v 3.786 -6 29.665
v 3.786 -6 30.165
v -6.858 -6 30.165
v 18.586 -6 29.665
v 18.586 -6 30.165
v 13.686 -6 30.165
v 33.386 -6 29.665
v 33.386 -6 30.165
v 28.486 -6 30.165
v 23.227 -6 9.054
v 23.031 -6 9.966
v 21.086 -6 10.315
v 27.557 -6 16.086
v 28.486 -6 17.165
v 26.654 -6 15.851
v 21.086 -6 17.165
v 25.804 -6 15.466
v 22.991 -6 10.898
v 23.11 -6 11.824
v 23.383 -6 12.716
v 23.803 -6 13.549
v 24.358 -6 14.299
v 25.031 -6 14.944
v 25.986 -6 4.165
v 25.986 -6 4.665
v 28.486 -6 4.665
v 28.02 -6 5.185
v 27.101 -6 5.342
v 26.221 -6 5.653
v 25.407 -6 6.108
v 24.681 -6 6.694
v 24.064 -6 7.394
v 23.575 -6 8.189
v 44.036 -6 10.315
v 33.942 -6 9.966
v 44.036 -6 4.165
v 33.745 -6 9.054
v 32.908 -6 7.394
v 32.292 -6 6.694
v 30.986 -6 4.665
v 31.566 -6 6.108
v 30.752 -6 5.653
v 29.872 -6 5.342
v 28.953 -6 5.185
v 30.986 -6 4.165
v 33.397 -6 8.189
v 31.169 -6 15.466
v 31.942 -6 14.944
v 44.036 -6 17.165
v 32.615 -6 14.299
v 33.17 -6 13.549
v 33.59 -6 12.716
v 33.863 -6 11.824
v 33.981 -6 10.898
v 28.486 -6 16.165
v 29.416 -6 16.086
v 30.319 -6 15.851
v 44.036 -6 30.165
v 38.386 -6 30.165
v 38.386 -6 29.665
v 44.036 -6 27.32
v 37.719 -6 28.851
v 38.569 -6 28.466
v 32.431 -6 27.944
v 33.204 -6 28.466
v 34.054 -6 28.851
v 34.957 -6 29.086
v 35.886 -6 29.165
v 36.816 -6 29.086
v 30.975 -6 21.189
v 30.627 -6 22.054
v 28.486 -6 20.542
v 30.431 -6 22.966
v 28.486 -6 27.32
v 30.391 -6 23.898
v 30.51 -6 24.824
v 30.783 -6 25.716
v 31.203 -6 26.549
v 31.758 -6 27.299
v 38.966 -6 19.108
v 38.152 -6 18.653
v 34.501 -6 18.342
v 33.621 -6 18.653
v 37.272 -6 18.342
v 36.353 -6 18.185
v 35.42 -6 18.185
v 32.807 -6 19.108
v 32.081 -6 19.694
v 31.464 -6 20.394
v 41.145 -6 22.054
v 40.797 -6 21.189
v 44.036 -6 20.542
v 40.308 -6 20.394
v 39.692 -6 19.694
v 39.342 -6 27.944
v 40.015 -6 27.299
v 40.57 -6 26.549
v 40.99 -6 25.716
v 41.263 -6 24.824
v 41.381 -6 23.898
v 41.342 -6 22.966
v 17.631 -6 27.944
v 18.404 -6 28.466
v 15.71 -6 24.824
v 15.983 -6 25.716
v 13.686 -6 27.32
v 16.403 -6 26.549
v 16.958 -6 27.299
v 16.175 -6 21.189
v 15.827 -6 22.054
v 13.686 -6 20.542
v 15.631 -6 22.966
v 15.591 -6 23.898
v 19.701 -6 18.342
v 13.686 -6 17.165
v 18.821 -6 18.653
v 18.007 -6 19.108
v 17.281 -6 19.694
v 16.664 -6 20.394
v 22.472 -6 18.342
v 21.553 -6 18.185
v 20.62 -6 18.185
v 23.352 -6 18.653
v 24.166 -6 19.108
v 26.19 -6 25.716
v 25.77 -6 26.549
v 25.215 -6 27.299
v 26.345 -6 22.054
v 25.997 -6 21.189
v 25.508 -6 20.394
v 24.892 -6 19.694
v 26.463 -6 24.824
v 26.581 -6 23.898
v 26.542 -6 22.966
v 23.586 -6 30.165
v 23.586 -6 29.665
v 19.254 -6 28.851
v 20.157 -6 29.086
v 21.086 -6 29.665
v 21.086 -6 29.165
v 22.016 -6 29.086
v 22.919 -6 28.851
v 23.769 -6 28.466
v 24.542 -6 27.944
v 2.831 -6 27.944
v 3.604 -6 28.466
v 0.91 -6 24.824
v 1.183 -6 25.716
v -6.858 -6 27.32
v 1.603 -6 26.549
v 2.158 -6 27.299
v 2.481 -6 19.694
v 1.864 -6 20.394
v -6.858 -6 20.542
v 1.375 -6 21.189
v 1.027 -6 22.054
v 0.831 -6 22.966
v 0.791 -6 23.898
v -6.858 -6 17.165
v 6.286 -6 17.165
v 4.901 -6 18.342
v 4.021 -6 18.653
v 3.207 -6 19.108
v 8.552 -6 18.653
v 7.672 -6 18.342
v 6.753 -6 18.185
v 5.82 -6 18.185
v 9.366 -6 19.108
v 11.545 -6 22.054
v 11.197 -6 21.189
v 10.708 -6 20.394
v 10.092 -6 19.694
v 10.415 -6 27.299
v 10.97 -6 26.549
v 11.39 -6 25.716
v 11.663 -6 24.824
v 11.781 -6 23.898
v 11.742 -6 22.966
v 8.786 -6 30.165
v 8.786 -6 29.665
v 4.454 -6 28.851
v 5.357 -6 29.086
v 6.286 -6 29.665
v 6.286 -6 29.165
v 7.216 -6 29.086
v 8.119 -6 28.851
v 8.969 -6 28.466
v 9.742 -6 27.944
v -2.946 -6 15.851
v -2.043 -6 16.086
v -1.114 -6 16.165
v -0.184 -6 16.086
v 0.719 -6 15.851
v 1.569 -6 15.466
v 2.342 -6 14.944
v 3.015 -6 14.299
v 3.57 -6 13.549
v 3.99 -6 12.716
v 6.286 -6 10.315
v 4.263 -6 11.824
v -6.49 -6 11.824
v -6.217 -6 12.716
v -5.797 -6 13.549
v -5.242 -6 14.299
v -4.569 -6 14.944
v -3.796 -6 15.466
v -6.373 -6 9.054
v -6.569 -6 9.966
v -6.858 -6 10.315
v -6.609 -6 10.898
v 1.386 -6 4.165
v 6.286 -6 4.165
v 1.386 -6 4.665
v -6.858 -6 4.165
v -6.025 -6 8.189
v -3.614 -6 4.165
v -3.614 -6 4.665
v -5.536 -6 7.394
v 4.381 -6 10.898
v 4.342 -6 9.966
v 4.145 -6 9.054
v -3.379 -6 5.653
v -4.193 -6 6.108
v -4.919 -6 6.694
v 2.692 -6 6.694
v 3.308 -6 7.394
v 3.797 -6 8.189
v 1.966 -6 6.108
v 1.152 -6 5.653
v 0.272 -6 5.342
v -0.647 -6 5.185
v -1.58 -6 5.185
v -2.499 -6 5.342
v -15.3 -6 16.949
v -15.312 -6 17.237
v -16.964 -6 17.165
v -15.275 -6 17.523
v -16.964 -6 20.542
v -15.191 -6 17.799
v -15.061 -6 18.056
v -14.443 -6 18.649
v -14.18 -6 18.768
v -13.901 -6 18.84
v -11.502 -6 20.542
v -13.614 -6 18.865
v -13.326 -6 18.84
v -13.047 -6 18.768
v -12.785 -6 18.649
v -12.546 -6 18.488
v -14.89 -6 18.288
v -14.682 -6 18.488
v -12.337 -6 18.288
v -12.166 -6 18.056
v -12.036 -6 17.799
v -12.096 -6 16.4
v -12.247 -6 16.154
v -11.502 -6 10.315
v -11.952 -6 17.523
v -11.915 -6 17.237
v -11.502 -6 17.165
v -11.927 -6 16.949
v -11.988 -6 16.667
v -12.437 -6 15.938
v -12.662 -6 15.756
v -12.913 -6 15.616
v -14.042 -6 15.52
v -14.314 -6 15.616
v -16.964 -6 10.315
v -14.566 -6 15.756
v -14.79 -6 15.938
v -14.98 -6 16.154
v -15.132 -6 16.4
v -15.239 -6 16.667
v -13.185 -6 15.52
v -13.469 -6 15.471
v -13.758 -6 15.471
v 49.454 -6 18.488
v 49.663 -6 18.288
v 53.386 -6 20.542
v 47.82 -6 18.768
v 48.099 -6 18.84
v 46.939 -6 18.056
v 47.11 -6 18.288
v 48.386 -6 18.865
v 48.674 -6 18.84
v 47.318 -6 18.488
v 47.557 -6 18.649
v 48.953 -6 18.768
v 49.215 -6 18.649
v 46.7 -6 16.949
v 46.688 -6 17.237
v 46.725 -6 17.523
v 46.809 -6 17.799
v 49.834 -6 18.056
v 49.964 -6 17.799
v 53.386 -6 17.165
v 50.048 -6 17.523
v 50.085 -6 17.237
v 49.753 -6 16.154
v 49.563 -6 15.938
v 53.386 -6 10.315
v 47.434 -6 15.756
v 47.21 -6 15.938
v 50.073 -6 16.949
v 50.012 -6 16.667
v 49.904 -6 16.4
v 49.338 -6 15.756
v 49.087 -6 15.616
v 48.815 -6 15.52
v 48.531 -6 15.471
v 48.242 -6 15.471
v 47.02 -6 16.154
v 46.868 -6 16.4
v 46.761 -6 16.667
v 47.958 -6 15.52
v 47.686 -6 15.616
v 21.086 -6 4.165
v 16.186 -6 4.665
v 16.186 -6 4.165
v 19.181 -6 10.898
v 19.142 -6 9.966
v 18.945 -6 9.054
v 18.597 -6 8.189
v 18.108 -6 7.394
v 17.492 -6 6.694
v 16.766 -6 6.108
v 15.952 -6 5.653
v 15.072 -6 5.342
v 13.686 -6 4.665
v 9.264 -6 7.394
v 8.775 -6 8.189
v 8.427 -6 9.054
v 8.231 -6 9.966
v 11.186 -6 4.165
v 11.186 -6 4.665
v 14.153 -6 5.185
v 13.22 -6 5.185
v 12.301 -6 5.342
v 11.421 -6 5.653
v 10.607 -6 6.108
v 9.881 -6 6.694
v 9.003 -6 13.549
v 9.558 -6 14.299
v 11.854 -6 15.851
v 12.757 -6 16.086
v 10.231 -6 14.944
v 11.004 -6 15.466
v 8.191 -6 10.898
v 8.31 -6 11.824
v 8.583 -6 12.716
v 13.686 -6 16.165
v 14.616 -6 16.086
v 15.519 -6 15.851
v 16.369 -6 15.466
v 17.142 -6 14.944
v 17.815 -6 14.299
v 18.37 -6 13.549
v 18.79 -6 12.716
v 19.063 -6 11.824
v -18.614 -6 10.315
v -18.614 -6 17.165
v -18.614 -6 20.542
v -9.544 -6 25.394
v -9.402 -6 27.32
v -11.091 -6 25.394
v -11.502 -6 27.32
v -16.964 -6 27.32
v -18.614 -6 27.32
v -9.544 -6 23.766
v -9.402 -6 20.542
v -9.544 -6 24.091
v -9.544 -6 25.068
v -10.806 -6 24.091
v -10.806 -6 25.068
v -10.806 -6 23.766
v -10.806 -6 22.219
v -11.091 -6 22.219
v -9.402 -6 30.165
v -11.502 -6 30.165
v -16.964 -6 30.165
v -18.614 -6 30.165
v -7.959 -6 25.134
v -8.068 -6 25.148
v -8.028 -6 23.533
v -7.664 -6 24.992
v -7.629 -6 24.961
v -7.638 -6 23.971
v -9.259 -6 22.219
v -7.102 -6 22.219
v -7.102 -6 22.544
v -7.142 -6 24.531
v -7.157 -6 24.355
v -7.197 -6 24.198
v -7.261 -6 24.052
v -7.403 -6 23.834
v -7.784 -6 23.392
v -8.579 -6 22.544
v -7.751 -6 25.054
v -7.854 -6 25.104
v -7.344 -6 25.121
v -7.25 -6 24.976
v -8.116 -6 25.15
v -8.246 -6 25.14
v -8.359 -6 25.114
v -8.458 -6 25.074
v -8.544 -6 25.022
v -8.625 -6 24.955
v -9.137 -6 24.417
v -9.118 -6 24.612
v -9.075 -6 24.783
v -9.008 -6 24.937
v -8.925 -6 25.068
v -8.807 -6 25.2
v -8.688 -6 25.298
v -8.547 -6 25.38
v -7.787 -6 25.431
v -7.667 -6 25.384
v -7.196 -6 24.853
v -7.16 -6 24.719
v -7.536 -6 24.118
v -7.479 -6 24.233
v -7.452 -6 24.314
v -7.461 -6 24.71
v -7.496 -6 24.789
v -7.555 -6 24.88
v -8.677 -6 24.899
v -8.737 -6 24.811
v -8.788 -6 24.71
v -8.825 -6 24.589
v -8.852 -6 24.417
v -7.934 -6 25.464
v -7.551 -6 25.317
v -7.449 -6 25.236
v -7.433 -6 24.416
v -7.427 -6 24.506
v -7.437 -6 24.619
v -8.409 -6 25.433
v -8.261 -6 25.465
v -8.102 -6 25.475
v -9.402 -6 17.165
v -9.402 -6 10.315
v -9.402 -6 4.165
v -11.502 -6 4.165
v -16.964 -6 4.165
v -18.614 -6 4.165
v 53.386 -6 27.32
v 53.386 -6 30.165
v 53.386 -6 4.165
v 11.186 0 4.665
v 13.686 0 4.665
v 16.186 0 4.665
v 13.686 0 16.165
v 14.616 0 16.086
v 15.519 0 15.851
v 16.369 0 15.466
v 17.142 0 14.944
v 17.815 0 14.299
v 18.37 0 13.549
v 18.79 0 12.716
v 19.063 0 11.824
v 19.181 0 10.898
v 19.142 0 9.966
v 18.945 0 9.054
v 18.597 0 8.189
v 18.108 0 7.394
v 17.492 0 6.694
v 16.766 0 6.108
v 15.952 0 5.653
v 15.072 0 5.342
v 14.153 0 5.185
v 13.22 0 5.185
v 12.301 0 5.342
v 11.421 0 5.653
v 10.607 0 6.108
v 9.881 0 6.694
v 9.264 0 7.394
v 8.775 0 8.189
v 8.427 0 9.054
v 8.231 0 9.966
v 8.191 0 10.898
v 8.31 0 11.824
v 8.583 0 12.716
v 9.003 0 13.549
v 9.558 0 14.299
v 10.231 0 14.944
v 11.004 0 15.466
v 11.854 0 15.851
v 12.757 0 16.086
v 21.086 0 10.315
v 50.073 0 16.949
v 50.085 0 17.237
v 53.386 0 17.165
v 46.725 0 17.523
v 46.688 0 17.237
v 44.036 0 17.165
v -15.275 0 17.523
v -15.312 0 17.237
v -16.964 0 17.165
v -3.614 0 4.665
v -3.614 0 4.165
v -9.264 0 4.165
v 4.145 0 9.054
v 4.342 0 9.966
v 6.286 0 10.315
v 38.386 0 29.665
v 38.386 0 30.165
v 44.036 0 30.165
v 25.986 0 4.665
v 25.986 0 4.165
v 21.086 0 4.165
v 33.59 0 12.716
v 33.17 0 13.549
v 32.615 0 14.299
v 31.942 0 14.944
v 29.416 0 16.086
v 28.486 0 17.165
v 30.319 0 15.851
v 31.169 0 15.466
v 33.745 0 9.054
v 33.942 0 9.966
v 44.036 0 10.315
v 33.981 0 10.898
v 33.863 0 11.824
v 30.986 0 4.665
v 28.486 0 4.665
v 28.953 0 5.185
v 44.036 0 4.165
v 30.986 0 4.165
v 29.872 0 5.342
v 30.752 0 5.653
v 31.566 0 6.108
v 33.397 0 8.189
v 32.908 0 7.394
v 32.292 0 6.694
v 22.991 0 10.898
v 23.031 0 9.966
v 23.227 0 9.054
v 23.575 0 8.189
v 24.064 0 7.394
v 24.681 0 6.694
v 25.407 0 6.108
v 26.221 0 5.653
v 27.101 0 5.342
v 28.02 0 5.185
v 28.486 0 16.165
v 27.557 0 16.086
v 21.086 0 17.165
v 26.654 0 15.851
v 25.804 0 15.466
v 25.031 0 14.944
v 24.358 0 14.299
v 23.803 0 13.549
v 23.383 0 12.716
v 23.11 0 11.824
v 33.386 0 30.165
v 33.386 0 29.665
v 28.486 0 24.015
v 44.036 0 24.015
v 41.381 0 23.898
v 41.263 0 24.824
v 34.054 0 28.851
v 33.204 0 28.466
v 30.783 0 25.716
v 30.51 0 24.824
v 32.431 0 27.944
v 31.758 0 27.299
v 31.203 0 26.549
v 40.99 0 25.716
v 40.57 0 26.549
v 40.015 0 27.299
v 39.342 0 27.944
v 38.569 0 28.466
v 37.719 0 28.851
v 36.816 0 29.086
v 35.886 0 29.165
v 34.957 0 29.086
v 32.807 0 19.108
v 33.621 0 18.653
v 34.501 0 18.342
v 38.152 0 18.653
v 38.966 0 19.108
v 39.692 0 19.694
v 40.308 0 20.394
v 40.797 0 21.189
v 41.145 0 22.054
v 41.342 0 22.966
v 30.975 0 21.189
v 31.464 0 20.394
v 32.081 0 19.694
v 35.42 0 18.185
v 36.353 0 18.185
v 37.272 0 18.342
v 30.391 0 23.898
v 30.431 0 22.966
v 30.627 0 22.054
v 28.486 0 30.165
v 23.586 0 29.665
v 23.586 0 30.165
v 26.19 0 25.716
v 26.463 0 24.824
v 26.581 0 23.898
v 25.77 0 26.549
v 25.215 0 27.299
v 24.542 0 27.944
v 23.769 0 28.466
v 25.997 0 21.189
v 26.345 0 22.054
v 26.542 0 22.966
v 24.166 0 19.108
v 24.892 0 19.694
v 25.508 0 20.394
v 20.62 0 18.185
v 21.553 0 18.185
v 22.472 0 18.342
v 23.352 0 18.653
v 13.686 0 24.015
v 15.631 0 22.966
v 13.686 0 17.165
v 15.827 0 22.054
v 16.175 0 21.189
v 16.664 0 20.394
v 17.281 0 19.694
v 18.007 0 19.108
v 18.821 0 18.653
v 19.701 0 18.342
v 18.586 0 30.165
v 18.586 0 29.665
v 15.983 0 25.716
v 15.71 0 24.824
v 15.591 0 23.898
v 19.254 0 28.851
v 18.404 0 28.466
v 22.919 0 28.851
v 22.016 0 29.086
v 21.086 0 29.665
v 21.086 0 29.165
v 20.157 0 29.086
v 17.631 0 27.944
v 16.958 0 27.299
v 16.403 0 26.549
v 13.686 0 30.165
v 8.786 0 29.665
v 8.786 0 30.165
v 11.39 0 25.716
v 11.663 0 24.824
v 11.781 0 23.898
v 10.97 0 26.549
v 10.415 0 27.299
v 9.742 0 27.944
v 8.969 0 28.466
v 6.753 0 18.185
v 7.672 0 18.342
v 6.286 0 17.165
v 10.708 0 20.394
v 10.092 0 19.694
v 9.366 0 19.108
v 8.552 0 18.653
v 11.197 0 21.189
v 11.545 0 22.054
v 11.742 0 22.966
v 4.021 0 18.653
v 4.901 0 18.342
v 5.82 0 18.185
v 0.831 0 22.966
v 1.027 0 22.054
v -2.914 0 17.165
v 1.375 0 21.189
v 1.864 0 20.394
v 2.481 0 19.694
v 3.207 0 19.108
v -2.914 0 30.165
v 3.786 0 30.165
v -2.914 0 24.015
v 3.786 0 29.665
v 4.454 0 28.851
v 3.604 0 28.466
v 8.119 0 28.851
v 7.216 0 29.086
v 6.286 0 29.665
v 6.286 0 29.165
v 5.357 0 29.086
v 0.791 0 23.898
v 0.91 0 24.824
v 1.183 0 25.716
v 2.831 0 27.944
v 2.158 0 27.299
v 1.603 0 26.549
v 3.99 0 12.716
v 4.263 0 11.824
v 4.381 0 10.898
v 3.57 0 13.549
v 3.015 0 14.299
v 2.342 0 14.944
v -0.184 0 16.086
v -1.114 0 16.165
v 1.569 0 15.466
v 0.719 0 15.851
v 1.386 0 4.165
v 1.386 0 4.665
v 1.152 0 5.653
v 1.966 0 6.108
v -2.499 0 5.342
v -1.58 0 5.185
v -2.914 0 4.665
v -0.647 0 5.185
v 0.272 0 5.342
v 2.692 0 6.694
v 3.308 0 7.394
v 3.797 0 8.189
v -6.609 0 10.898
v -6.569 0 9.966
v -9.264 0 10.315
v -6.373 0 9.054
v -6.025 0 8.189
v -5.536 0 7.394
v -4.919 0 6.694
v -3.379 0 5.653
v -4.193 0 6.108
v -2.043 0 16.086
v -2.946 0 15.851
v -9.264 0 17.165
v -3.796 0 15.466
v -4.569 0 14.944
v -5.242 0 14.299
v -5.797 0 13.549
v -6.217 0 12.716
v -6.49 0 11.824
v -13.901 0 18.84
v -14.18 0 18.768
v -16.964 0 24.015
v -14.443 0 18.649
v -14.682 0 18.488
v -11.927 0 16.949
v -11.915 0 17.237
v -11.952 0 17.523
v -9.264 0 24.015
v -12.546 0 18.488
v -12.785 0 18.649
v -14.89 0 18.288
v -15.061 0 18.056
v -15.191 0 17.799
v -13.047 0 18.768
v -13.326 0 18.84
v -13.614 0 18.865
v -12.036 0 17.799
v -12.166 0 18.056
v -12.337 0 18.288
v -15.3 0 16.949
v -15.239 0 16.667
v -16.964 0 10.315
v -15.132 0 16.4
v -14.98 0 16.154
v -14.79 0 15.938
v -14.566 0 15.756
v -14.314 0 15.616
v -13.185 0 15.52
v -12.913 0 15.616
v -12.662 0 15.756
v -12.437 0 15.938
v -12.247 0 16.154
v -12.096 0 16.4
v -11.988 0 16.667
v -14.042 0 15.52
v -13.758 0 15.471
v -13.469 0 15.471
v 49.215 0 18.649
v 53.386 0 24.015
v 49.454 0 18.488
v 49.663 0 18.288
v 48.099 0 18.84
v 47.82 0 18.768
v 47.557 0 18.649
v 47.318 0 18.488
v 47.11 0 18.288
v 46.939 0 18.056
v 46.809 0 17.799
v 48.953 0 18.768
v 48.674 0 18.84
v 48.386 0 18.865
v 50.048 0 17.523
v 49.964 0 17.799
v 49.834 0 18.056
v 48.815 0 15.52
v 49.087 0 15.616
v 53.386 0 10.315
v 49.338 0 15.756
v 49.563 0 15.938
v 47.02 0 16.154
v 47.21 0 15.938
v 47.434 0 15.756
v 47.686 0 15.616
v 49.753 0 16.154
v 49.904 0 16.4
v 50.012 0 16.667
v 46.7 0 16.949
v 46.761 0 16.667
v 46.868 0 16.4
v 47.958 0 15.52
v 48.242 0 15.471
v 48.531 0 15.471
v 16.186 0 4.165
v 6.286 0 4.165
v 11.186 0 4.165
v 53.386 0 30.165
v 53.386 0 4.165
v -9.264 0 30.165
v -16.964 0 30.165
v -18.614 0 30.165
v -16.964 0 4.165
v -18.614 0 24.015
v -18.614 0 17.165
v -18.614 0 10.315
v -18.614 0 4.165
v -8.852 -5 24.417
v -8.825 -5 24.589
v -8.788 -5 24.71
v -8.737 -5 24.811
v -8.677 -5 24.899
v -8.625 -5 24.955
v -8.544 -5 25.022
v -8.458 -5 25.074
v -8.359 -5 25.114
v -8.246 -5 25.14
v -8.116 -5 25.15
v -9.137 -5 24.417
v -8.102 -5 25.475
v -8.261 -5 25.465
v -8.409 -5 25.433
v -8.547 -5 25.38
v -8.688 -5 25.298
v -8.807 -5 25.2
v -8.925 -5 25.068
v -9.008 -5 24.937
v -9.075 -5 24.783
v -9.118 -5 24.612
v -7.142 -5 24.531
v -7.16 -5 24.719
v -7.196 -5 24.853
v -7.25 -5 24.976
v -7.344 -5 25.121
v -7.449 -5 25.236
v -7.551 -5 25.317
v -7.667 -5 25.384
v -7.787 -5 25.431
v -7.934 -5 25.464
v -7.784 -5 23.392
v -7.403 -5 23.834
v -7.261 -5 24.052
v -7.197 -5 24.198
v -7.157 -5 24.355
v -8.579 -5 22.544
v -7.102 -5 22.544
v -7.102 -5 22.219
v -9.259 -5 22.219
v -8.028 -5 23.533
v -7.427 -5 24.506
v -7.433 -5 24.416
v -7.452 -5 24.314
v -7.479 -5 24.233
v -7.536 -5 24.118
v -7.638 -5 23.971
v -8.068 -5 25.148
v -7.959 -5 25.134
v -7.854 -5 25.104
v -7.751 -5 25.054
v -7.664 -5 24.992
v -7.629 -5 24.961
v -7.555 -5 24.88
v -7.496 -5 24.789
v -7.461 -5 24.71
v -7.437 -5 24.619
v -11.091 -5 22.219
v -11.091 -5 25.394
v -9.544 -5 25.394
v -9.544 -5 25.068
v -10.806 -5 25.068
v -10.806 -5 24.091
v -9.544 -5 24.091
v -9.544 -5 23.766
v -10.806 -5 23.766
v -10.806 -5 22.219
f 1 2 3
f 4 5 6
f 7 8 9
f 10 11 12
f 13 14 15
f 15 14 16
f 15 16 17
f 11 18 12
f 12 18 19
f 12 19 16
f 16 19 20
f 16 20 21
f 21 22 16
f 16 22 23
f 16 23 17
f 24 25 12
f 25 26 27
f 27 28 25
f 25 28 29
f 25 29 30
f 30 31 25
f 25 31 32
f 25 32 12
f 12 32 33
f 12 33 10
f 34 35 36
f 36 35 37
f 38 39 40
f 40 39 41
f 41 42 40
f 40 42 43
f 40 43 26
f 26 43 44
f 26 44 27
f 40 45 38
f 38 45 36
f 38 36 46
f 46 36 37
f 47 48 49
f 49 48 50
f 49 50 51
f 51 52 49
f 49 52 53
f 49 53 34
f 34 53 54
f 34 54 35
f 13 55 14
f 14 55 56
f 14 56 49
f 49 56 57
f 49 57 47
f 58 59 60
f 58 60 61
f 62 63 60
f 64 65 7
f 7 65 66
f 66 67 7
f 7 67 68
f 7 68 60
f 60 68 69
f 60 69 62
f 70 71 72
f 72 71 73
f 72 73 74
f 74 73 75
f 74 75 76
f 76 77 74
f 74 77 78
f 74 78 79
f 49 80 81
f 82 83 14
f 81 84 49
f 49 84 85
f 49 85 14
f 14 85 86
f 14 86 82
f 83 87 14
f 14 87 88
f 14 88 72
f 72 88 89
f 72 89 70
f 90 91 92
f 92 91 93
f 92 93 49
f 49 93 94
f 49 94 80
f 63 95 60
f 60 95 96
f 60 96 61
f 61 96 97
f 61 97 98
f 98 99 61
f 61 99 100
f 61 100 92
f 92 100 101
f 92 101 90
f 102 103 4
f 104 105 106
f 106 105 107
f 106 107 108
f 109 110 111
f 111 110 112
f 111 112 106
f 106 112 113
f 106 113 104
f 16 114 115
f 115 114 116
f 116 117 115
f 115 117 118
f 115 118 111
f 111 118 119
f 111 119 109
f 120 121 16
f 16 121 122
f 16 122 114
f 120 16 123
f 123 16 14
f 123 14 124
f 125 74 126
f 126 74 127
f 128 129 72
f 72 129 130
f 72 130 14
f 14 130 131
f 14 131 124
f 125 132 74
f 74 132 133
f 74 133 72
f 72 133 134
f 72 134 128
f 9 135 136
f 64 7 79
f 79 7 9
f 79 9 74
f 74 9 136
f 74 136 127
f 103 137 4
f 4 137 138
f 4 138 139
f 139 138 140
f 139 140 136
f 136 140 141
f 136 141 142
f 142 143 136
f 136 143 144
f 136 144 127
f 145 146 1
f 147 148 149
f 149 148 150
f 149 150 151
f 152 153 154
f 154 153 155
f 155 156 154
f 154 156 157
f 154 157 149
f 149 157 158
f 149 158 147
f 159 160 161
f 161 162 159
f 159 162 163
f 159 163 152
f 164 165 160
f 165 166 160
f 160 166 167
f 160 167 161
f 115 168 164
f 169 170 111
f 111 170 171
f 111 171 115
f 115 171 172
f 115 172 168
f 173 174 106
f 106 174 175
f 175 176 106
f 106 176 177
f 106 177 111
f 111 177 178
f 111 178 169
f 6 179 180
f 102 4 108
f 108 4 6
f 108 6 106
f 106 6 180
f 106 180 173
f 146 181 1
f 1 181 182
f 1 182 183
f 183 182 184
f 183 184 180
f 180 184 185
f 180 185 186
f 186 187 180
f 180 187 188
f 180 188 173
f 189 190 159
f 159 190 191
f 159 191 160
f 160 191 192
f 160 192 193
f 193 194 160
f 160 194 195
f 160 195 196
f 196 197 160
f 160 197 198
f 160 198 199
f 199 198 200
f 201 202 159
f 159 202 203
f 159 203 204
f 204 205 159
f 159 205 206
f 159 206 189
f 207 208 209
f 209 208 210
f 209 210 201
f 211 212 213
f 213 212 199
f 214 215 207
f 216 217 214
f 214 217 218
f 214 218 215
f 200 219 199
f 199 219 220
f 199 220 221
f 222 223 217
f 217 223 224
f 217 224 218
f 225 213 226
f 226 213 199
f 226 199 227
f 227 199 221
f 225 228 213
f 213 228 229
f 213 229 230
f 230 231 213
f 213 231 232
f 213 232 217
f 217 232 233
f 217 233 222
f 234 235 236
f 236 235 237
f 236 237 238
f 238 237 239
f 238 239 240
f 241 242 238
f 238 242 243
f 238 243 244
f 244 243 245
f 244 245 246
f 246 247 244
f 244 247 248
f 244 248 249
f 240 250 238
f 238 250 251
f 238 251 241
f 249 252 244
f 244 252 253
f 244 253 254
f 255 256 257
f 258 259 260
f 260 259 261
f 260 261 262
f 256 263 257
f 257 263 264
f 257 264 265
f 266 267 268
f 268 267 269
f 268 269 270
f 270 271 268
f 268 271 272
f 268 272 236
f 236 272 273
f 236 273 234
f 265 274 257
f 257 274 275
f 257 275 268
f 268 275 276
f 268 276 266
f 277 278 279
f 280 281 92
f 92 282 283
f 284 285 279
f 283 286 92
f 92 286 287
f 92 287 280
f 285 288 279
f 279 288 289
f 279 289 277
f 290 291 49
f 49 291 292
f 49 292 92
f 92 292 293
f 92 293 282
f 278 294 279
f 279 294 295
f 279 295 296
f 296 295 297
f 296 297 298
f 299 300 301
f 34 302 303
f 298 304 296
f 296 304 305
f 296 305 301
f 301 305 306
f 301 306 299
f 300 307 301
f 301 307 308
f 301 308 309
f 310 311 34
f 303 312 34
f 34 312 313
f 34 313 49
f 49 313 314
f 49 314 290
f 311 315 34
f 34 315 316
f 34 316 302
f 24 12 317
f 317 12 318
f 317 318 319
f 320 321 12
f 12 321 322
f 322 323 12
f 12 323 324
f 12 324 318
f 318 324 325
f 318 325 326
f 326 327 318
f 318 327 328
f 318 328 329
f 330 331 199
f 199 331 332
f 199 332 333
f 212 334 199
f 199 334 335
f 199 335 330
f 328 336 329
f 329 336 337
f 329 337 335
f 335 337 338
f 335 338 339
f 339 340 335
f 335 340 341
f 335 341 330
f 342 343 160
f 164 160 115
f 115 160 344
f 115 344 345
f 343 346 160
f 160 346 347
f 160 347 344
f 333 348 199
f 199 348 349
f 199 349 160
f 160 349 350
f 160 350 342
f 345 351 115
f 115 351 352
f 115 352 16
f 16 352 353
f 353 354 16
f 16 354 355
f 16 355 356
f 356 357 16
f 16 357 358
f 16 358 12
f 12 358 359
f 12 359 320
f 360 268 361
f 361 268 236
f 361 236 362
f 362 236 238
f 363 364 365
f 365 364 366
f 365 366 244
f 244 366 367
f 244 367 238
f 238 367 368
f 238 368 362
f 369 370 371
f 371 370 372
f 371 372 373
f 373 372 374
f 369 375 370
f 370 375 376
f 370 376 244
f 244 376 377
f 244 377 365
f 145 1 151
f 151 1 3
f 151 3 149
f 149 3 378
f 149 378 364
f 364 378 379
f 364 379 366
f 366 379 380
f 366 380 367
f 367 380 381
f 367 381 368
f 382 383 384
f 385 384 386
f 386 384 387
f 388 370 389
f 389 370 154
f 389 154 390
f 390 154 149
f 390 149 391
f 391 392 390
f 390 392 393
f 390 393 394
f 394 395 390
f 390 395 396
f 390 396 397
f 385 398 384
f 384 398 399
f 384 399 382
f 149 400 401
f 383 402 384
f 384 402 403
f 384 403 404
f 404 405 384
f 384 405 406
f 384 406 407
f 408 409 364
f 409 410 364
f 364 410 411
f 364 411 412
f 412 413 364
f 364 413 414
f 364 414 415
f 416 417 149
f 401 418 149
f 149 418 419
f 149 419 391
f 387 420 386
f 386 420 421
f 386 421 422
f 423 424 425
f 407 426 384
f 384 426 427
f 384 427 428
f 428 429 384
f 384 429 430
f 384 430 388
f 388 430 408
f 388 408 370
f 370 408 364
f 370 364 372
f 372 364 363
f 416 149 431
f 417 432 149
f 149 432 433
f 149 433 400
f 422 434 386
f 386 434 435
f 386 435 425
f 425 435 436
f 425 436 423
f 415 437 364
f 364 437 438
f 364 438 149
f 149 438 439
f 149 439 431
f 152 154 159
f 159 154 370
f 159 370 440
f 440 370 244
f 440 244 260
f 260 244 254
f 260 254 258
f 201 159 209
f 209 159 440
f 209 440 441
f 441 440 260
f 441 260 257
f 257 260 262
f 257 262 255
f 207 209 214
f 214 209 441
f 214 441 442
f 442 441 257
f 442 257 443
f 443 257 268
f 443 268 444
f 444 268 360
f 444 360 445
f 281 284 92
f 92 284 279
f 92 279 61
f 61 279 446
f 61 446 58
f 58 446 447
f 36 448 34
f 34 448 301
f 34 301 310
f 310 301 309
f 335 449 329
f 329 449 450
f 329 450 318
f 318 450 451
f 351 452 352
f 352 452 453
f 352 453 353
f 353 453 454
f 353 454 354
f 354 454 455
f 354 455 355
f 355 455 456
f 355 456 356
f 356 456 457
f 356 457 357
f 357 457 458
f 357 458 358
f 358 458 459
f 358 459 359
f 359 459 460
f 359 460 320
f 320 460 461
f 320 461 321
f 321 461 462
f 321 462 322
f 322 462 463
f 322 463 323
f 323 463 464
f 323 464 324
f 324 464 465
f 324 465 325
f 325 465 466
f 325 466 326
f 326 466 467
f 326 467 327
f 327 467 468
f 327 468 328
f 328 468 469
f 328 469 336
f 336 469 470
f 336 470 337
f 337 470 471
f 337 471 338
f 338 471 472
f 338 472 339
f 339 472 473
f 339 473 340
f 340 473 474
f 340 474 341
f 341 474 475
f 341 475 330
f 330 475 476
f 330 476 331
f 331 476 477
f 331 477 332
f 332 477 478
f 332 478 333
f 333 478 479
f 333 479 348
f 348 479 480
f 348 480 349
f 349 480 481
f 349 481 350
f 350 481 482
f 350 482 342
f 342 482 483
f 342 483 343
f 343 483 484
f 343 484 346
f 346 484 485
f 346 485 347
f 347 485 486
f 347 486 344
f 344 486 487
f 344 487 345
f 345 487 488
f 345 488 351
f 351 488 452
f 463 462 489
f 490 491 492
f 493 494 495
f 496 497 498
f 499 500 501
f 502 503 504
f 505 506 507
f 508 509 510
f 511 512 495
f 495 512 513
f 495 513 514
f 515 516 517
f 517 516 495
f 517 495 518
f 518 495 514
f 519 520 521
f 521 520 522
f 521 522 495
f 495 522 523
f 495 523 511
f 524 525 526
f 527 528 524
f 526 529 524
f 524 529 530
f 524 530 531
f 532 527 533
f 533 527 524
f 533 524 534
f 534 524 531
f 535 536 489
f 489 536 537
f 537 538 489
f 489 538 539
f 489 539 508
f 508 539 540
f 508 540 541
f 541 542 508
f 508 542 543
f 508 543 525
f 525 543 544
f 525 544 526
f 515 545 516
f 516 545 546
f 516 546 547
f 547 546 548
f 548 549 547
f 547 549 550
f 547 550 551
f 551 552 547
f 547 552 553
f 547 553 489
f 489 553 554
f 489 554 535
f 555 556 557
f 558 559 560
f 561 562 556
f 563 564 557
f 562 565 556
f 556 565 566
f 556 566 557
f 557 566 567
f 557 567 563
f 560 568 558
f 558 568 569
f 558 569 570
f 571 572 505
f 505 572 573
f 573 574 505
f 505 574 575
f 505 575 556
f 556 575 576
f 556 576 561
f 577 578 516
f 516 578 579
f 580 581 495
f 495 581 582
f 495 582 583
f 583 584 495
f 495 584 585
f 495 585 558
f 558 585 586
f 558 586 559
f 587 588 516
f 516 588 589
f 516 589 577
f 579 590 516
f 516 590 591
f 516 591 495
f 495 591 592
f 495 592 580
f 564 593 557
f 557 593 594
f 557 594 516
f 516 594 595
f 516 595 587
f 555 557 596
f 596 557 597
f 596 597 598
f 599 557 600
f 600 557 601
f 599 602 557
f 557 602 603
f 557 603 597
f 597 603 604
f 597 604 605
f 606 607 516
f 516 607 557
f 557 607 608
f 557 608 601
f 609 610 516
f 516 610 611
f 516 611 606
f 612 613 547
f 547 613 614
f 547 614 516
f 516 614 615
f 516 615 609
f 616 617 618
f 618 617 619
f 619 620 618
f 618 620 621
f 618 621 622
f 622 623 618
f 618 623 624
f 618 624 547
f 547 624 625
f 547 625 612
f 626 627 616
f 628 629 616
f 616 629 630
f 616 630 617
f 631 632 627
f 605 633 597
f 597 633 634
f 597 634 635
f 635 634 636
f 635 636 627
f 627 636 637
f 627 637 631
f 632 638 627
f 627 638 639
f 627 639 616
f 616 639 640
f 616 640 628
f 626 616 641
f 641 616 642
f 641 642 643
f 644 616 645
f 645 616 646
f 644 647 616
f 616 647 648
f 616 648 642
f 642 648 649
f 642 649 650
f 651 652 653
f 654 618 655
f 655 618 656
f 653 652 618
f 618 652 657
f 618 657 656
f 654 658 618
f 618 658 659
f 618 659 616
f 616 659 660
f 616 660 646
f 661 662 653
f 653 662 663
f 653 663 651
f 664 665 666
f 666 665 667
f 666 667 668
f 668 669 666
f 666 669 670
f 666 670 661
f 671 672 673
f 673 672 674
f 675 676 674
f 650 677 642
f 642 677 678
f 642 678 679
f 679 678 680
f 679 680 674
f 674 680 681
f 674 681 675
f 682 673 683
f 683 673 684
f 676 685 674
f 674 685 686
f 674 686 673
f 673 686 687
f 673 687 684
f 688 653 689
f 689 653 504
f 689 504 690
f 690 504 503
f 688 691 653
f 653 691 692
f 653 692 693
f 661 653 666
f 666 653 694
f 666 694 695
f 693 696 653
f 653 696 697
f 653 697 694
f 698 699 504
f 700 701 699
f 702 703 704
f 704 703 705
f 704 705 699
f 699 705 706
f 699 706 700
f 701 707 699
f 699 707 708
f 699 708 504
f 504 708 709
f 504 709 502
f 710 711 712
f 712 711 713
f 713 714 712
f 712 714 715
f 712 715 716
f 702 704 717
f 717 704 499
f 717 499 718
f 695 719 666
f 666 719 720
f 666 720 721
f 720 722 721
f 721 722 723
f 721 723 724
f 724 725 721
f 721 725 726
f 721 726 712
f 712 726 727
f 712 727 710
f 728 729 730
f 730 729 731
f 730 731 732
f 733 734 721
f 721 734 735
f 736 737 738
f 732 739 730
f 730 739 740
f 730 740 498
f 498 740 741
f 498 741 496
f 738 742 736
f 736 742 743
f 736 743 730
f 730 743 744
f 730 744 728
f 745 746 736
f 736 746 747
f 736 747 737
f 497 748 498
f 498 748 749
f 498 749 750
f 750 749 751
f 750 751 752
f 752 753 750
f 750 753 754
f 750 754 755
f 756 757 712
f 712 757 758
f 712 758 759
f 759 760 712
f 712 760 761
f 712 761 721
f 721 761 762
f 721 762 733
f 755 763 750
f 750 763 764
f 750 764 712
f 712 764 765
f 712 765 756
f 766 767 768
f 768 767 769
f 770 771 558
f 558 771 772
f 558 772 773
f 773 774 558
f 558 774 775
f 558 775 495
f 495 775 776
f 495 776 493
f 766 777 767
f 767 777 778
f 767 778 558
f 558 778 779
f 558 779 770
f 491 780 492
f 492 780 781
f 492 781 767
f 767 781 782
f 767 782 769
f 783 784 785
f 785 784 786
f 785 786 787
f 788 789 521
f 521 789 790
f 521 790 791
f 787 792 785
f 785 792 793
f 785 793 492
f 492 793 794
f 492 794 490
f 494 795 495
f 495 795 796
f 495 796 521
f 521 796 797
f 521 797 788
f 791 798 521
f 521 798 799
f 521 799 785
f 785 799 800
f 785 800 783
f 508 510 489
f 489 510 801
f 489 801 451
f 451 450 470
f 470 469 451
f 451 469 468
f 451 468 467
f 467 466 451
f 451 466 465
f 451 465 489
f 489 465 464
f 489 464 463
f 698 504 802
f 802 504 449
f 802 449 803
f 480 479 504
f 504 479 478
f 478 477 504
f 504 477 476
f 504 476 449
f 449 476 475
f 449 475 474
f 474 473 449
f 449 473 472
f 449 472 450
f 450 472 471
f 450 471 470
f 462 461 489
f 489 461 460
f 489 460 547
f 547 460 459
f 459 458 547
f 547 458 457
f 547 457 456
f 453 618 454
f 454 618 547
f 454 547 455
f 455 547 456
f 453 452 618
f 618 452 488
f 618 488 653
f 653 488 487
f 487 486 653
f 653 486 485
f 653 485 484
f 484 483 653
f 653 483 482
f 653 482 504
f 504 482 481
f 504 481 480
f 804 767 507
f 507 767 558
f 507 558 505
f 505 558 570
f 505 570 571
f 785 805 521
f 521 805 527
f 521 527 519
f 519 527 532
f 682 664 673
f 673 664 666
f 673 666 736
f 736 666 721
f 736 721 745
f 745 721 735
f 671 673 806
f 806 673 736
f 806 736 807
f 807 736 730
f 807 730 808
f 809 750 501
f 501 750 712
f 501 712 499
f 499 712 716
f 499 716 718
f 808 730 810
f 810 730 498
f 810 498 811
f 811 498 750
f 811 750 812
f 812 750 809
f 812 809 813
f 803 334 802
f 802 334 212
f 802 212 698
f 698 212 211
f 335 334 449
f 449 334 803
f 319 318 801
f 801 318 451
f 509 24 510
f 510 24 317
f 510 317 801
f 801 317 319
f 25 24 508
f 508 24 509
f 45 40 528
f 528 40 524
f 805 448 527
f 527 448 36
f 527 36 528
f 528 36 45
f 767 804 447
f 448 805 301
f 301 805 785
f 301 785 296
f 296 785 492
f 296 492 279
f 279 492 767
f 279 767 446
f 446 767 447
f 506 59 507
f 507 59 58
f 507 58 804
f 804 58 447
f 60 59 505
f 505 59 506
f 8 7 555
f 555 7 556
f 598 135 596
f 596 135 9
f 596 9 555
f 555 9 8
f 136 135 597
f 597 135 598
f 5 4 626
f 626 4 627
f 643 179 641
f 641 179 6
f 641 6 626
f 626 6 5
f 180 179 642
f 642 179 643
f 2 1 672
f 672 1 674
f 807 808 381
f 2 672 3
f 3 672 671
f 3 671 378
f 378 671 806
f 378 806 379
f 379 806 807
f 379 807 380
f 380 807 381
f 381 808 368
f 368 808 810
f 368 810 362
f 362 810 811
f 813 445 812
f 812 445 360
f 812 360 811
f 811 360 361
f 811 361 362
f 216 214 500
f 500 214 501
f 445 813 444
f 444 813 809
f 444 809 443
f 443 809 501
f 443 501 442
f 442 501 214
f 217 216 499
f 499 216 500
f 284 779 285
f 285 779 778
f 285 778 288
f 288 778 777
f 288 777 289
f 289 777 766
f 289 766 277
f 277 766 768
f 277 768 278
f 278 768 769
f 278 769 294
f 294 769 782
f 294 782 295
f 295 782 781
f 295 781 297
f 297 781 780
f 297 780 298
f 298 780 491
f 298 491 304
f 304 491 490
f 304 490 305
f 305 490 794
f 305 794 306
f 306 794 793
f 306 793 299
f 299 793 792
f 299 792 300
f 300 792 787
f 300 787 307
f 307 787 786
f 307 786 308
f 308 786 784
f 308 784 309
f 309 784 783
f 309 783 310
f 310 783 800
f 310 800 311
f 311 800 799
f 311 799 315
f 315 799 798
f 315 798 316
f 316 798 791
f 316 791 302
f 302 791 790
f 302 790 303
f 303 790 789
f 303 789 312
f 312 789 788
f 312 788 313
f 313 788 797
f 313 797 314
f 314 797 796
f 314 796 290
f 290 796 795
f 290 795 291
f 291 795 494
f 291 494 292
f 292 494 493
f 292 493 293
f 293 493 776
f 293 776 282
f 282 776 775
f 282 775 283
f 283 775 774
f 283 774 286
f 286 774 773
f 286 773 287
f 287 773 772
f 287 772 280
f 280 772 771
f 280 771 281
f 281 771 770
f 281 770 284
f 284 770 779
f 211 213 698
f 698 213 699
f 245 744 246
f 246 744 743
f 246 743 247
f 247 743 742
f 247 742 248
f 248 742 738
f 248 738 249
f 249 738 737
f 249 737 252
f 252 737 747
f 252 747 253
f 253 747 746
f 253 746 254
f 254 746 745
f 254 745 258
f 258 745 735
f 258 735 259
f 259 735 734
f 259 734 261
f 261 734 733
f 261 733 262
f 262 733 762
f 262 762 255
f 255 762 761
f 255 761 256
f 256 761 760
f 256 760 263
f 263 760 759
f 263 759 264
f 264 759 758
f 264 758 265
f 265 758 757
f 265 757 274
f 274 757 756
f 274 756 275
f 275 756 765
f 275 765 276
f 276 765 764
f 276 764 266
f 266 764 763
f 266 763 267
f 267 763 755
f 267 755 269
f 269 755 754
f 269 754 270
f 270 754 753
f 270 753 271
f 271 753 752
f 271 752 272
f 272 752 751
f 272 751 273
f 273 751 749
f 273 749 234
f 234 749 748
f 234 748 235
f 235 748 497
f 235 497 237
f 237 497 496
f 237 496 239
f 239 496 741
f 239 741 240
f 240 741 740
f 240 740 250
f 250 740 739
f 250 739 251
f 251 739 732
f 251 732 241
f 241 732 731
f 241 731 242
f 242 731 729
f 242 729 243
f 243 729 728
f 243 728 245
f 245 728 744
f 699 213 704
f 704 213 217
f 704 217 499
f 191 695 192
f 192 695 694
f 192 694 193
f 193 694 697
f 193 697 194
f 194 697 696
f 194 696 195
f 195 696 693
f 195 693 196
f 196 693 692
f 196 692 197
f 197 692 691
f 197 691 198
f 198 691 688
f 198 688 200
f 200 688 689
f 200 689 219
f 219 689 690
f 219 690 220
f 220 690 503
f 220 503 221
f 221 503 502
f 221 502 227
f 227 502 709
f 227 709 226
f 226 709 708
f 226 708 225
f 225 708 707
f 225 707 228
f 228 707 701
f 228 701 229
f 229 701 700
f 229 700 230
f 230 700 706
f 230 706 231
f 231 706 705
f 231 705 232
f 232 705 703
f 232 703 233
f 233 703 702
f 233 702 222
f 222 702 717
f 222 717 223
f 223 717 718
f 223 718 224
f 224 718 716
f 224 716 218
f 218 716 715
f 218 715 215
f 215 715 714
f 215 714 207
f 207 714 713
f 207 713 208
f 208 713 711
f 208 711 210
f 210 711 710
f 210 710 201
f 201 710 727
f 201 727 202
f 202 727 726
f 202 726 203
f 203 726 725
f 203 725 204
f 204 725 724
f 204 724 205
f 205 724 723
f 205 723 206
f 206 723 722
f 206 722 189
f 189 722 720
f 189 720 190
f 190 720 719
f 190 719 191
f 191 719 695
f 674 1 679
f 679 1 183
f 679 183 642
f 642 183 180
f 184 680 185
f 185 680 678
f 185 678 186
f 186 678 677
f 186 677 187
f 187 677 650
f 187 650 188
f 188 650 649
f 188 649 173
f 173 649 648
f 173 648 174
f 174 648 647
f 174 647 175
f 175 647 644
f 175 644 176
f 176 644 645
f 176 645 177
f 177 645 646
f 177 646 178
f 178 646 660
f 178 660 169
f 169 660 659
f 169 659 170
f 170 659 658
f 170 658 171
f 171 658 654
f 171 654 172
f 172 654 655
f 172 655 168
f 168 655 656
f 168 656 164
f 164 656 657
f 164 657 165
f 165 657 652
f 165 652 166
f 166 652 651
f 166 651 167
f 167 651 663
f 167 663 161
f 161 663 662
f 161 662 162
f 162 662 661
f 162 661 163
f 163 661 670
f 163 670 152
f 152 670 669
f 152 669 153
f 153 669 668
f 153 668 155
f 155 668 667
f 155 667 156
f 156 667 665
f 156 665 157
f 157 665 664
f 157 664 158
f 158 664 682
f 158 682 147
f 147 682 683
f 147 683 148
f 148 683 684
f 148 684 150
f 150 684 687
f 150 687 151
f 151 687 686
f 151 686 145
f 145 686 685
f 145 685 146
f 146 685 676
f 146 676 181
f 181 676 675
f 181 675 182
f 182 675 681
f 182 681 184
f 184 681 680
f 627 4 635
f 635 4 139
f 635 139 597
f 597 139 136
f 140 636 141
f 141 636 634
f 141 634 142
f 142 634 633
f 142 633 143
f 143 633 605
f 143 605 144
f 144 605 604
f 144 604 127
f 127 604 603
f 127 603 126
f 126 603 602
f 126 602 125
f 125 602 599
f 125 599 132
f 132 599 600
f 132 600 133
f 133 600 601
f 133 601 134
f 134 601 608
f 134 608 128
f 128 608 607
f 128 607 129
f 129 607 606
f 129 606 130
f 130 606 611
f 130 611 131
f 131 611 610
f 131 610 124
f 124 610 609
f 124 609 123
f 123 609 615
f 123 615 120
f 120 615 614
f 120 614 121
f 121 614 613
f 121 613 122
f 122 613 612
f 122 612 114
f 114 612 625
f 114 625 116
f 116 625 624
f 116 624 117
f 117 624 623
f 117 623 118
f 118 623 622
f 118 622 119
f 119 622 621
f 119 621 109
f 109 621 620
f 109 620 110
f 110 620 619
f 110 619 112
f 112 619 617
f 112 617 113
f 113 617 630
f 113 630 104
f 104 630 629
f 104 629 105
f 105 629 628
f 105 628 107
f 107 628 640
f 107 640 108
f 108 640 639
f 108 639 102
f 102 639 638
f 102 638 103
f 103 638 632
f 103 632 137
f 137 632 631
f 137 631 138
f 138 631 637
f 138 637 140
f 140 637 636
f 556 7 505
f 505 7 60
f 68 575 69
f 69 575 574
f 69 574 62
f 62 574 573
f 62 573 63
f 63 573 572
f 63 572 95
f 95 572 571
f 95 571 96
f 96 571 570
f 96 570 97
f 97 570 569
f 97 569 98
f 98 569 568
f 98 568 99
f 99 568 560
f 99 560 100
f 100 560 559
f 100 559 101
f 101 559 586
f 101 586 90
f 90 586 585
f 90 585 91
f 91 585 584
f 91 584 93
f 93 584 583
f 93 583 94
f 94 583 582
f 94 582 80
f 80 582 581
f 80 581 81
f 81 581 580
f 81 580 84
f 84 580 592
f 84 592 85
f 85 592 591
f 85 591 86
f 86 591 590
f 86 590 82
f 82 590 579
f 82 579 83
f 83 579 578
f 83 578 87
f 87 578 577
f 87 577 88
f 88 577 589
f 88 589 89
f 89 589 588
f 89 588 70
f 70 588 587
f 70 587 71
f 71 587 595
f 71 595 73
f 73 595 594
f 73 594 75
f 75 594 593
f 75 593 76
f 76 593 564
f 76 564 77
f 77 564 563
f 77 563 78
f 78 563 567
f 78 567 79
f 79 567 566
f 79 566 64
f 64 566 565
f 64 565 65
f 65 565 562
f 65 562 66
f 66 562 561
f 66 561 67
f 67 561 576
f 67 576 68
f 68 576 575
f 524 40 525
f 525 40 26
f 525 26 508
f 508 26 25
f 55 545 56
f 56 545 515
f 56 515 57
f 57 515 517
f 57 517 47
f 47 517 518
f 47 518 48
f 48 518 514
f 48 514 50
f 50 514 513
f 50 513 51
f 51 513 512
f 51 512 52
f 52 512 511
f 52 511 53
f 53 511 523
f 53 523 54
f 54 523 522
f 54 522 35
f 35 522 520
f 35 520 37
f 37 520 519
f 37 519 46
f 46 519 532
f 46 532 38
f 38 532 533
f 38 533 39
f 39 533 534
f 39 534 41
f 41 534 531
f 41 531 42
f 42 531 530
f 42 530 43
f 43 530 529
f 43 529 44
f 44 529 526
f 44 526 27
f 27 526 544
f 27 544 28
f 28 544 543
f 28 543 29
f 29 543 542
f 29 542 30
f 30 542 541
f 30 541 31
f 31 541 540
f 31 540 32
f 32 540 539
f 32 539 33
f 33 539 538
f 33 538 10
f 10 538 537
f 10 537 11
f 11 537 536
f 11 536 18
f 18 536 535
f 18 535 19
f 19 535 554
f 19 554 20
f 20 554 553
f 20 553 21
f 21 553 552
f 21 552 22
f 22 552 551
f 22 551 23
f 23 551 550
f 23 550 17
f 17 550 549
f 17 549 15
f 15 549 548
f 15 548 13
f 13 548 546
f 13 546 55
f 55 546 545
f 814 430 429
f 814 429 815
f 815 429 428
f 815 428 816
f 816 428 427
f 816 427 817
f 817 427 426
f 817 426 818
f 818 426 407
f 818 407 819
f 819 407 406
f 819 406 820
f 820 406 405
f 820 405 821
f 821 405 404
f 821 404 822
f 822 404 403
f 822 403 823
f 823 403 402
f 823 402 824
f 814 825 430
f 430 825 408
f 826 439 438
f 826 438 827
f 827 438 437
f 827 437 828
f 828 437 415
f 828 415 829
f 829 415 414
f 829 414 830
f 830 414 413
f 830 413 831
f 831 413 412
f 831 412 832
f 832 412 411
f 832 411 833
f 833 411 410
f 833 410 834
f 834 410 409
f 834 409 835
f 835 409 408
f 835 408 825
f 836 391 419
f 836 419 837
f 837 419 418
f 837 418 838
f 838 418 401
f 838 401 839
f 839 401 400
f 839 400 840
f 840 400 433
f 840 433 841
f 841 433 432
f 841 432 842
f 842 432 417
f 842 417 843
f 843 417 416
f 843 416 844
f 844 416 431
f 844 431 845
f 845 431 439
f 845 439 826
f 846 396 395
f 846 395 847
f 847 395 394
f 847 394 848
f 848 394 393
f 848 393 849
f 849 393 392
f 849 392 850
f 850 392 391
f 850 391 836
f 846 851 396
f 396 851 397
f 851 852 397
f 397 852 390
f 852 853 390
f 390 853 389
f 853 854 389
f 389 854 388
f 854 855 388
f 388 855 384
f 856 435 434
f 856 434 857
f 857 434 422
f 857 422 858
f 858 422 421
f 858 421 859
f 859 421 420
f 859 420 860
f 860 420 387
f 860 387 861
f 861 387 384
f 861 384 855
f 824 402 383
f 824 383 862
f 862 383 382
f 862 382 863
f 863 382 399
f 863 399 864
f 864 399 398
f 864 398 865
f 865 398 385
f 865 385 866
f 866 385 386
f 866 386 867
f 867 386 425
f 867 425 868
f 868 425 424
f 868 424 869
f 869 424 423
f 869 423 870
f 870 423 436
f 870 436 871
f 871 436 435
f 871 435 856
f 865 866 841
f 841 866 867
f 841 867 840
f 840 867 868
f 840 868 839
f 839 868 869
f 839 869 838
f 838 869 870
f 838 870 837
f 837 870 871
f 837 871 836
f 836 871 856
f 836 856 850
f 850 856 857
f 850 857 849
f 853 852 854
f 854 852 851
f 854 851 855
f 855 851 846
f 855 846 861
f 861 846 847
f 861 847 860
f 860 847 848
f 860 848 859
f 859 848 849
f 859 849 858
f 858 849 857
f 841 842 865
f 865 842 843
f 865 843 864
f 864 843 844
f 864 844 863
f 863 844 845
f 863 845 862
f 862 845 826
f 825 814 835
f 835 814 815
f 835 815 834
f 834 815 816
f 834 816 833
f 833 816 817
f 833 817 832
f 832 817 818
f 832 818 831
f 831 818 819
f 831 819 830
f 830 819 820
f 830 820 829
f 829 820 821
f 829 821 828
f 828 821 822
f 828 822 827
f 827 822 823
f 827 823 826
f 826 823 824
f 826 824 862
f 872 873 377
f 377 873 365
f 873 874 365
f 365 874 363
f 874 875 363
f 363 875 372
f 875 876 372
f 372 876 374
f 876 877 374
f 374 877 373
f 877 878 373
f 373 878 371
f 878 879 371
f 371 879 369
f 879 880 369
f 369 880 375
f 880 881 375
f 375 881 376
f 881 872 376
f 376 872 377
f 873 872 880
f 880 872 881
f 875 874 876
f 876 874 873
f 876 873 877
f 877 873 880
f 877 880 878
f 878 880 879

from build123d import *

# Parameters (mm, degrees)
SKETCH1_W               = 12
SKETCH1_H               = 12
SKETCH1_R               = 5.5
BOSS_EXTRUDE1_DEPTH     = 6
BOSS_EXTRUDE1_2_DEPTH   = 6
BOSS_EXTRUDE1_3_DEPTH   = 6
BOSS_EXTRUDE1_4_DEPTH   = 6
BOSS_EXTRUDE1_5_DEPTH   = 6
BOSS_EXTRUDE1_6_DEPTH   = 6
BOSS_EXTRUDE2_START     = -6
BOSS_EXTRUDE2_OUTLINE_R = 1.7
BOSS_EXTRUDE2_DEPTH     = 6
CUT_EXTRUDE1_DEPTH      = 1


# Read off the part's stored shape, not the designer's step: Boss-Extrude2
with BuildPart() as part:
    # Sketch1 → Boss-Extrude1 (new body)
    with BuildSketch(Plane(origin=(0, 0, 0), x_dir=(1, 0, 0), z_dir=(0, 1, 0))):
        with Locations((13.686388819, -10.664882883)):
            Rectangle(SKETCH1_W, SKETCH1_H)
        with Locations(Location((13.686388819, -10.664882883, 0), (0, 0, 270))):
            Circle(SKETCH1_R, mode=Mode.SUBTRACT)
    extrude(amount=-BOSS_EXTRUDE1_DEPTH)



with BuildPart() as body_2:
    # Sketch1 → Boss-Extrude1 2 (new body)
    with BuildSketch(Plane(origin=(0, 0, 0), x_dir=(1, 0, 0), z_dir=(0, 1, 0))):
        with Locations((-1.113611181, -10.664882883)):
            Rectangle(SKETCH1_W, SKETCH1_H)
        with Locations(Location((-1.113611181, -10.664882883, 0), (0, 0, 270))):
            Circle(SKETCH1_R, mode=Mode.SUBTRACT)
    extrude(amount=-BOSS_EXTRUDE1_2_DEPTH)


with BuildPart() as body_3:
    # Sketch1 → Boss-Extrude1 3 (new body)
    with BuildSketch(Plane(origin=(0, 0, 0), x_dir=(1, 0, 0), z_dir=(0, 1, 0))):
        with Locations((6.28638882, -23.664882883)):
            Rectangle(SKETCH1_W, SKETCH1_H)
        with Locations(Location((6.28638882, -23.664882883, 0), (0, 0, 270))):
            Circle(SKETCH1_R, mode=Mode.SUBTRACT)
    extrude(amount=-BOSS_EXTRUDE1_3_DEPTH)


with BuildPart() as body_4:
    # Sketch1 → Boss-Extrude1 4 (new body)
    with BuildSketch(Plane(origin=(0, 0, 0), x_dir=(1, 0, 0), z_dir=(0, 1, 0))):
        with Locations((21.08638882, -23.664882883)):
            Rectangle(SKETCH1_W, SKETCH1_H)
        with Locations(Location((21.08638882, -23.664882883, 0), (0, 0, 270))):
            Circle(SKETCH1_R, mode=Mode.SUBTRACT)
    extrude(amount=-BOSS_EXTRUDE1_4_DEPTH)


with BuildPart() as body_5:
    # Sketch1 → Boss-Extrude1 5 (new body)
    with BuildSketch(Plane(origin=(0, 0, 0), x_dir=(1, 0, 0), z_dir=(0, 1, 0))):
        with Locations((35.88638882, -23.664882883)):
            Rectangle(SKETCH1_W, SKETCH1_H)
        with Locations(Location((35.88638882, -23.664882883, 0), (0, 0, 270))):
            Circle(SKETCH1_R, mode=Mode.SUBTRACT)
    extrude(amount=-BOSS_EXTRUDE1_5_DEPTH)


with BuildPart() as body_6:
    # Sketch1 → Boss-Extrude1 6 (new body)
    with BuildSketch(Plane(origin=(0, 0, 0), x_dir=(1, 0, 0), z_dir=(0, 1, 0))):
        with Locations((28.486388819, -10.664882883)):
            Rectangle(SKETCH1_W, SKETCH1_H)
        with Locations(Location((28.486388819, -10.664882883, 0), (0, 0, 270))):
            Circle(SKETCH1_R, mode=Mode.SUBTRACT)
    extrude(amount=-BOSS_EXTRUDE1_6_DEPTH)


with BuildPart() as part_1:
    add(part.part)

    add(body_2.part)  # Boss-Extrude2 merges body 2

    add(body_3.part)  # Boss-Extrude2 merges body 3

    add(body_4.part)  # Boss-Extrude2 merges body 4

    add(body_5.part)  # Boss-Extrude2 merges body 5

    add(body_6.part)  # Boss-Extrude2 merges body 6
    # Boss-Extrude2 outline → Boss-Extrude2 (add)
    with BuildSketch(Plane(origin=(0, 0, 0), x_dir=(1, 0, 0), z_dir=(0, 1, 0)).offset(BOSS_EXTRUDE2_START)):
        Polygon((11.186388819, -4.164882883), (1.386388819, -4.164882883), (1.386388819, -4.664882883), (4.886388819, -4.664882883), (4.886388819, -16.664882883), (-7.113611181, -16.664882883), (-7.113611181, -4.664882883), (-3.613611181, -4.664882883), (-3.613611181, -4.164882883), (-18.613611181, -4.164883527), (-18.613611181, -30.164882449), (3.78638882, -30.164882883), (3.78638882, -29.664882883), (0.28638882, -29.664882883), (0.28638882, -17.664882883), (12.28638882, -17.664882883), (12.28638882, -29.664882883), (8.78638882, -29.664882883), (8.78638882, -30.164882883), (18.58638882, -30.164882883), (18.58638882, -29.664882883), (15.08638882, -29.664882883), (15.08638882, -17.664882883), (27.08638882, -17.664882883), (27.08638882, -29.664882883), (23.58638882, -29.664882883), (23.58638882, -30.164882883), (33.38638882, -30.164882883), (33.38638882, -29.664882883), (29.88638882, -29.664882883), (29.88638882, -17.664882883), (41.88638882, -17.664882883), (41.88638882, -29.664882883), (38.38638882, -29.664882883), (38.38638882, -30.164882883), (53.38638882, -30.164882883), (53.38638882, -4.164882883), (30.986388819, -4.164882883), (30.986388819, -4.664882883), (34.486388819, -4.664882883), (34.486388819, -16.664882883), (22.486388819, -16.664882883), (22.486388819, -4.664882883), (25.986388819, -4.664882883), (25.986388819, -4.164882883), (16.186388819, -4.164882883), (16.186388819, -4.664882883), (19.686388819, -4.664882883), (19.686388819, -16.664882883), (7.686388819, -16.664882883), (7.686388819, -4.664882883), (11.186388819, -4.664882883), align=None)
        with Locations((-13.613611181, -17.164882988)):
            Circle(BOSS_EXTRUDE2_OUTLINE_R, mode=Mode.SUBTRACT)
        with Locations((48.386388819, -17.164882988)):
            Circle(BOSS_EXTRUDE2_OUTLINE_R, mode=Mode.SUBTRACT)
    extrude(amount=BOSS_EXTRUDE2_DEPTH)

    # Sketch2 → Cut-Extrude1 (cut)
    with BuildSketch(Plane.XZ.offset(6)):
        Polygon((-11.090813446, 25.393846705), (-9.544018575, 25.393846705), (-9.544018575, 25.068205679), (-10.805877549, 25.068205679), (-10.805877549, 24.091282602), (-9.544018575, 24.091282602), (-9.544018575, 23.765641577), (-10.805877549, 23.765641577), (-10.805877549, 22.218846705), (-11.090813446, 22.218846705), align=None)
        with BuildLine():
            Line((-8.852031395, 24.416923628), (-9.136967293, 24.416923628))
            add(Edge.make_bspline(
                [(-9.136967293, 24.416923628), (-9.135110232, 24.454725076), (-9.131463015, 24.528966114), (-9.114383067, 24.637209944), (-9.089943843, 24.74067394), (-9.055389453, 24.838527362), (-9.012475901, 24.931635423), (-8.961013662, 25.019628294), (-8.90005924, 25.102170301), (-8.830928846, 25.178496252), (-8.755845866, 25.248516405), (-8.674832621, 25.308982233), (-8.589701775, 25.360070406), (-8.500711605, 25.402779818), (-8.406858094, 25.434838107), (-8.30899293, 25.45862488), (-8.206686142, 25.472936279), (-8.136981265, 25.474474599), (-8.101530594, 25.475256961)],
                knots=[0, 0, 0, 0, 1.10065271, 2.161652631, 3.183658789, 4.190468796, 5.17591951, 6.163126047, 7.15150782, 8.156236427, 9.156009102, 10.134482811, 11.092018607, 12.041330605, 13.001268258, 13.972401359, 14.968799086, 16, 16, 16, 16], degree=3))
            add(Edge.make_bspline(
                [(-8.101530594, 25.475256961), (-8.066716198, 25.474441933), (-7.998307154, 25.472840431), (-7.898465184, 25.459087212), (-7.803417209, 25.437546568), (-7.713349021, 25.407324726), (-7.628979234, 25.366698853), (-7.549674044, 25.3178968), (-7.474489308, 25.261454524), (-7.406810297, 25.195002851), (-7.344663683, 25.124062116), (-7.291049494, 25.048326661), (-7.245136124, 24.97010438), (-7.206865872, 24.888798797), (-7.178693517, 24.803644364), (-7.157304714, 24.71588083), (-7.145214846, 24.624599752), (-7.143359355, 24.562817376), (-7.142416011, 24.531406801)],
                knots=[0, 0, 0, 0, 1.111607364, 2.184268762, 3.212621178, 4.221274766, 5.211760367, 6.196651075, 7.1921475, 8.207485113, 9.220403448, 10.201281604, 11.166441695, 12.114753415, 13.065576456, 14.026450734, 14.996634279, 16, 16, 16, 16], degree=3))
            add(Edge.make_bspline(
                [(-7.142416011, 24.531406801), (-7.143946038, 24.48718376), (-7.146979244, 24.399513729), (-7.173155489, 24.270514062), (-7.21359782, 24.145414473), (-7.262649782, 24.044740618), (-7.31219844, 23.964025865), (-7.355904397, 23.896973819), (-7.408203317, 23.825466998), (-7.468616685, 23.748785207), (-7.536233124, 23.666693885), (-7.611539287, 23.579159348), (-7.695110449, 23.487111285), (-7.753764656, 23.424241012), (-7.784157797, 23.391663211)],
                knots=[0, 0, 0, 0, 1.184203166, 2.347625244, 3.513805382, 4.700623107, 5.337941753, 6.051866363, 6.845199593, 7.711357327, 8.668078039, 9.695487809, 10.805859518, 12, 12, 12, 12], degree=3))
            Line((-7.784157797, 23.391663211), (-8.578543815, 22.544487731))
            Line((-8.578543815, 22.544487731), (-7.101710882, 22.544487731))
            Line((-7.101710882, 22.544487731), (-7.101710882, 22.218846705))
            Line((-7.101710882, 22.218846705), (-9.259082677, 22.218846705))
            Line((-9.259082677, 22.218846705), (-8.027752549, 23.532859125))
            add(Edge.make_bspline(
                [(-8.027752549, 23.532859125), (-7.997773395, 23.564154017), (-7.940189574, 23.624265101), (-7.858743951, 23.712024786), (-7.785592869, 23.793440441), (-7.720262805, 23.868358238), (-7.664170983, 23.937874018), (-7.614394029, 23.999736356), (-7.574510957, 24.056663607), (-7.531226277, 24.122649736), (-7.489303594, 24.203215195), (-7.453278814, 24.301670756), (-7.431312487, 24.403023335), (-7.428677386, 24.471514469), (-7.427351908, 24.505966096)],
                knots=[0, 0, 0, 0, 1.329631726, 2.553950428, 3.673215718, 4.687767853, 5.603093632, 6.413772471, 7.123043292, 7.734684054, 8.834405432, 9.900288307, 10.943827018, 12, 12, 12, 12], degree=3))
            add(Edge.make_bspline(
                [(-7.427351908, 24.505966096), (-7.427928617, 24.527629936), (-7.4290652, 24.570325205), (-7.439096111, 24.632923286), (-7.454254927, 24.693307081), (-7.475976697, 24.751662329), (-7.504648526, 24.807402313), (-7.539549378, 24.860594884), (-7.579817506, 24.912019874), (-7.626400444, 24.960237509), (-7.677573751, 25.004398317), (-7.731634249, 25.043518023), (-7.7888297, 25.076210645), (-7.848918954, 25.103010817), (-7.911734487, 25.124034199), (-7.977397792, 25.138601624), (-8.045727435, 25.147747878), (-8.092384963, 25.148985376), (-8.116158999, 25.149615936)],
                knots=[0, 0, 0, 0, 0.991446411, 1.95395049, 2.89581595, 3.838931463, 4.798493298, 5.75982156, 6.748411868, 7.785213223, 8.824556874, 9.840280684, 10.836137867, 11.835679398, 12.848801643, 13.863922112, 14.911575587, 16, 16, 16, 16], degree=3))
            add(Edge.make_bspline(
                [(-8.116158999, 25.149615936), (-8.140988255, 25.148967299), (-8.189748813, 25.147693485), (-8.26133965, 25.138782925), (-8.329634605, 25.123410627), (-8.394805474, 25.102386072), (-8.456962527, 25.07566296), (-8.515803481, 25.042378306), (-8.571196245, 25.002660423), (-8.623244948, 24.957629347), (-8.671200129, 24.907493737), (-8.713334081, 24.851604699), (-8.75014958, 24.790982687), (-8.782270813, 24.725791273), (-8.808356332, 24.655438916), (-8.828289118, 24.580175355), (-8.844061472, 24.500327387), (-8.84933063, 24.445186632), (-8.852031395, 24.416923628)],
                knots=[0, 0, 0, 0, 1.031018746, 2.02475058, 2.990194455, 3.934040569, 4.864654155, 5.795059489, 6.735614925, 7.690564532, 8.649604399, 9.611025574, 10.590972636, 11.591080095, 12.624614302, 13.701020113, 14.821632451, 16, 16, 16, 16], degree=3))
        make_face()
    extrude(amount=-CUT_EXTRUDE1_DEPTH, mode=Mode.SUBTRACT)


solid = part_1.part
